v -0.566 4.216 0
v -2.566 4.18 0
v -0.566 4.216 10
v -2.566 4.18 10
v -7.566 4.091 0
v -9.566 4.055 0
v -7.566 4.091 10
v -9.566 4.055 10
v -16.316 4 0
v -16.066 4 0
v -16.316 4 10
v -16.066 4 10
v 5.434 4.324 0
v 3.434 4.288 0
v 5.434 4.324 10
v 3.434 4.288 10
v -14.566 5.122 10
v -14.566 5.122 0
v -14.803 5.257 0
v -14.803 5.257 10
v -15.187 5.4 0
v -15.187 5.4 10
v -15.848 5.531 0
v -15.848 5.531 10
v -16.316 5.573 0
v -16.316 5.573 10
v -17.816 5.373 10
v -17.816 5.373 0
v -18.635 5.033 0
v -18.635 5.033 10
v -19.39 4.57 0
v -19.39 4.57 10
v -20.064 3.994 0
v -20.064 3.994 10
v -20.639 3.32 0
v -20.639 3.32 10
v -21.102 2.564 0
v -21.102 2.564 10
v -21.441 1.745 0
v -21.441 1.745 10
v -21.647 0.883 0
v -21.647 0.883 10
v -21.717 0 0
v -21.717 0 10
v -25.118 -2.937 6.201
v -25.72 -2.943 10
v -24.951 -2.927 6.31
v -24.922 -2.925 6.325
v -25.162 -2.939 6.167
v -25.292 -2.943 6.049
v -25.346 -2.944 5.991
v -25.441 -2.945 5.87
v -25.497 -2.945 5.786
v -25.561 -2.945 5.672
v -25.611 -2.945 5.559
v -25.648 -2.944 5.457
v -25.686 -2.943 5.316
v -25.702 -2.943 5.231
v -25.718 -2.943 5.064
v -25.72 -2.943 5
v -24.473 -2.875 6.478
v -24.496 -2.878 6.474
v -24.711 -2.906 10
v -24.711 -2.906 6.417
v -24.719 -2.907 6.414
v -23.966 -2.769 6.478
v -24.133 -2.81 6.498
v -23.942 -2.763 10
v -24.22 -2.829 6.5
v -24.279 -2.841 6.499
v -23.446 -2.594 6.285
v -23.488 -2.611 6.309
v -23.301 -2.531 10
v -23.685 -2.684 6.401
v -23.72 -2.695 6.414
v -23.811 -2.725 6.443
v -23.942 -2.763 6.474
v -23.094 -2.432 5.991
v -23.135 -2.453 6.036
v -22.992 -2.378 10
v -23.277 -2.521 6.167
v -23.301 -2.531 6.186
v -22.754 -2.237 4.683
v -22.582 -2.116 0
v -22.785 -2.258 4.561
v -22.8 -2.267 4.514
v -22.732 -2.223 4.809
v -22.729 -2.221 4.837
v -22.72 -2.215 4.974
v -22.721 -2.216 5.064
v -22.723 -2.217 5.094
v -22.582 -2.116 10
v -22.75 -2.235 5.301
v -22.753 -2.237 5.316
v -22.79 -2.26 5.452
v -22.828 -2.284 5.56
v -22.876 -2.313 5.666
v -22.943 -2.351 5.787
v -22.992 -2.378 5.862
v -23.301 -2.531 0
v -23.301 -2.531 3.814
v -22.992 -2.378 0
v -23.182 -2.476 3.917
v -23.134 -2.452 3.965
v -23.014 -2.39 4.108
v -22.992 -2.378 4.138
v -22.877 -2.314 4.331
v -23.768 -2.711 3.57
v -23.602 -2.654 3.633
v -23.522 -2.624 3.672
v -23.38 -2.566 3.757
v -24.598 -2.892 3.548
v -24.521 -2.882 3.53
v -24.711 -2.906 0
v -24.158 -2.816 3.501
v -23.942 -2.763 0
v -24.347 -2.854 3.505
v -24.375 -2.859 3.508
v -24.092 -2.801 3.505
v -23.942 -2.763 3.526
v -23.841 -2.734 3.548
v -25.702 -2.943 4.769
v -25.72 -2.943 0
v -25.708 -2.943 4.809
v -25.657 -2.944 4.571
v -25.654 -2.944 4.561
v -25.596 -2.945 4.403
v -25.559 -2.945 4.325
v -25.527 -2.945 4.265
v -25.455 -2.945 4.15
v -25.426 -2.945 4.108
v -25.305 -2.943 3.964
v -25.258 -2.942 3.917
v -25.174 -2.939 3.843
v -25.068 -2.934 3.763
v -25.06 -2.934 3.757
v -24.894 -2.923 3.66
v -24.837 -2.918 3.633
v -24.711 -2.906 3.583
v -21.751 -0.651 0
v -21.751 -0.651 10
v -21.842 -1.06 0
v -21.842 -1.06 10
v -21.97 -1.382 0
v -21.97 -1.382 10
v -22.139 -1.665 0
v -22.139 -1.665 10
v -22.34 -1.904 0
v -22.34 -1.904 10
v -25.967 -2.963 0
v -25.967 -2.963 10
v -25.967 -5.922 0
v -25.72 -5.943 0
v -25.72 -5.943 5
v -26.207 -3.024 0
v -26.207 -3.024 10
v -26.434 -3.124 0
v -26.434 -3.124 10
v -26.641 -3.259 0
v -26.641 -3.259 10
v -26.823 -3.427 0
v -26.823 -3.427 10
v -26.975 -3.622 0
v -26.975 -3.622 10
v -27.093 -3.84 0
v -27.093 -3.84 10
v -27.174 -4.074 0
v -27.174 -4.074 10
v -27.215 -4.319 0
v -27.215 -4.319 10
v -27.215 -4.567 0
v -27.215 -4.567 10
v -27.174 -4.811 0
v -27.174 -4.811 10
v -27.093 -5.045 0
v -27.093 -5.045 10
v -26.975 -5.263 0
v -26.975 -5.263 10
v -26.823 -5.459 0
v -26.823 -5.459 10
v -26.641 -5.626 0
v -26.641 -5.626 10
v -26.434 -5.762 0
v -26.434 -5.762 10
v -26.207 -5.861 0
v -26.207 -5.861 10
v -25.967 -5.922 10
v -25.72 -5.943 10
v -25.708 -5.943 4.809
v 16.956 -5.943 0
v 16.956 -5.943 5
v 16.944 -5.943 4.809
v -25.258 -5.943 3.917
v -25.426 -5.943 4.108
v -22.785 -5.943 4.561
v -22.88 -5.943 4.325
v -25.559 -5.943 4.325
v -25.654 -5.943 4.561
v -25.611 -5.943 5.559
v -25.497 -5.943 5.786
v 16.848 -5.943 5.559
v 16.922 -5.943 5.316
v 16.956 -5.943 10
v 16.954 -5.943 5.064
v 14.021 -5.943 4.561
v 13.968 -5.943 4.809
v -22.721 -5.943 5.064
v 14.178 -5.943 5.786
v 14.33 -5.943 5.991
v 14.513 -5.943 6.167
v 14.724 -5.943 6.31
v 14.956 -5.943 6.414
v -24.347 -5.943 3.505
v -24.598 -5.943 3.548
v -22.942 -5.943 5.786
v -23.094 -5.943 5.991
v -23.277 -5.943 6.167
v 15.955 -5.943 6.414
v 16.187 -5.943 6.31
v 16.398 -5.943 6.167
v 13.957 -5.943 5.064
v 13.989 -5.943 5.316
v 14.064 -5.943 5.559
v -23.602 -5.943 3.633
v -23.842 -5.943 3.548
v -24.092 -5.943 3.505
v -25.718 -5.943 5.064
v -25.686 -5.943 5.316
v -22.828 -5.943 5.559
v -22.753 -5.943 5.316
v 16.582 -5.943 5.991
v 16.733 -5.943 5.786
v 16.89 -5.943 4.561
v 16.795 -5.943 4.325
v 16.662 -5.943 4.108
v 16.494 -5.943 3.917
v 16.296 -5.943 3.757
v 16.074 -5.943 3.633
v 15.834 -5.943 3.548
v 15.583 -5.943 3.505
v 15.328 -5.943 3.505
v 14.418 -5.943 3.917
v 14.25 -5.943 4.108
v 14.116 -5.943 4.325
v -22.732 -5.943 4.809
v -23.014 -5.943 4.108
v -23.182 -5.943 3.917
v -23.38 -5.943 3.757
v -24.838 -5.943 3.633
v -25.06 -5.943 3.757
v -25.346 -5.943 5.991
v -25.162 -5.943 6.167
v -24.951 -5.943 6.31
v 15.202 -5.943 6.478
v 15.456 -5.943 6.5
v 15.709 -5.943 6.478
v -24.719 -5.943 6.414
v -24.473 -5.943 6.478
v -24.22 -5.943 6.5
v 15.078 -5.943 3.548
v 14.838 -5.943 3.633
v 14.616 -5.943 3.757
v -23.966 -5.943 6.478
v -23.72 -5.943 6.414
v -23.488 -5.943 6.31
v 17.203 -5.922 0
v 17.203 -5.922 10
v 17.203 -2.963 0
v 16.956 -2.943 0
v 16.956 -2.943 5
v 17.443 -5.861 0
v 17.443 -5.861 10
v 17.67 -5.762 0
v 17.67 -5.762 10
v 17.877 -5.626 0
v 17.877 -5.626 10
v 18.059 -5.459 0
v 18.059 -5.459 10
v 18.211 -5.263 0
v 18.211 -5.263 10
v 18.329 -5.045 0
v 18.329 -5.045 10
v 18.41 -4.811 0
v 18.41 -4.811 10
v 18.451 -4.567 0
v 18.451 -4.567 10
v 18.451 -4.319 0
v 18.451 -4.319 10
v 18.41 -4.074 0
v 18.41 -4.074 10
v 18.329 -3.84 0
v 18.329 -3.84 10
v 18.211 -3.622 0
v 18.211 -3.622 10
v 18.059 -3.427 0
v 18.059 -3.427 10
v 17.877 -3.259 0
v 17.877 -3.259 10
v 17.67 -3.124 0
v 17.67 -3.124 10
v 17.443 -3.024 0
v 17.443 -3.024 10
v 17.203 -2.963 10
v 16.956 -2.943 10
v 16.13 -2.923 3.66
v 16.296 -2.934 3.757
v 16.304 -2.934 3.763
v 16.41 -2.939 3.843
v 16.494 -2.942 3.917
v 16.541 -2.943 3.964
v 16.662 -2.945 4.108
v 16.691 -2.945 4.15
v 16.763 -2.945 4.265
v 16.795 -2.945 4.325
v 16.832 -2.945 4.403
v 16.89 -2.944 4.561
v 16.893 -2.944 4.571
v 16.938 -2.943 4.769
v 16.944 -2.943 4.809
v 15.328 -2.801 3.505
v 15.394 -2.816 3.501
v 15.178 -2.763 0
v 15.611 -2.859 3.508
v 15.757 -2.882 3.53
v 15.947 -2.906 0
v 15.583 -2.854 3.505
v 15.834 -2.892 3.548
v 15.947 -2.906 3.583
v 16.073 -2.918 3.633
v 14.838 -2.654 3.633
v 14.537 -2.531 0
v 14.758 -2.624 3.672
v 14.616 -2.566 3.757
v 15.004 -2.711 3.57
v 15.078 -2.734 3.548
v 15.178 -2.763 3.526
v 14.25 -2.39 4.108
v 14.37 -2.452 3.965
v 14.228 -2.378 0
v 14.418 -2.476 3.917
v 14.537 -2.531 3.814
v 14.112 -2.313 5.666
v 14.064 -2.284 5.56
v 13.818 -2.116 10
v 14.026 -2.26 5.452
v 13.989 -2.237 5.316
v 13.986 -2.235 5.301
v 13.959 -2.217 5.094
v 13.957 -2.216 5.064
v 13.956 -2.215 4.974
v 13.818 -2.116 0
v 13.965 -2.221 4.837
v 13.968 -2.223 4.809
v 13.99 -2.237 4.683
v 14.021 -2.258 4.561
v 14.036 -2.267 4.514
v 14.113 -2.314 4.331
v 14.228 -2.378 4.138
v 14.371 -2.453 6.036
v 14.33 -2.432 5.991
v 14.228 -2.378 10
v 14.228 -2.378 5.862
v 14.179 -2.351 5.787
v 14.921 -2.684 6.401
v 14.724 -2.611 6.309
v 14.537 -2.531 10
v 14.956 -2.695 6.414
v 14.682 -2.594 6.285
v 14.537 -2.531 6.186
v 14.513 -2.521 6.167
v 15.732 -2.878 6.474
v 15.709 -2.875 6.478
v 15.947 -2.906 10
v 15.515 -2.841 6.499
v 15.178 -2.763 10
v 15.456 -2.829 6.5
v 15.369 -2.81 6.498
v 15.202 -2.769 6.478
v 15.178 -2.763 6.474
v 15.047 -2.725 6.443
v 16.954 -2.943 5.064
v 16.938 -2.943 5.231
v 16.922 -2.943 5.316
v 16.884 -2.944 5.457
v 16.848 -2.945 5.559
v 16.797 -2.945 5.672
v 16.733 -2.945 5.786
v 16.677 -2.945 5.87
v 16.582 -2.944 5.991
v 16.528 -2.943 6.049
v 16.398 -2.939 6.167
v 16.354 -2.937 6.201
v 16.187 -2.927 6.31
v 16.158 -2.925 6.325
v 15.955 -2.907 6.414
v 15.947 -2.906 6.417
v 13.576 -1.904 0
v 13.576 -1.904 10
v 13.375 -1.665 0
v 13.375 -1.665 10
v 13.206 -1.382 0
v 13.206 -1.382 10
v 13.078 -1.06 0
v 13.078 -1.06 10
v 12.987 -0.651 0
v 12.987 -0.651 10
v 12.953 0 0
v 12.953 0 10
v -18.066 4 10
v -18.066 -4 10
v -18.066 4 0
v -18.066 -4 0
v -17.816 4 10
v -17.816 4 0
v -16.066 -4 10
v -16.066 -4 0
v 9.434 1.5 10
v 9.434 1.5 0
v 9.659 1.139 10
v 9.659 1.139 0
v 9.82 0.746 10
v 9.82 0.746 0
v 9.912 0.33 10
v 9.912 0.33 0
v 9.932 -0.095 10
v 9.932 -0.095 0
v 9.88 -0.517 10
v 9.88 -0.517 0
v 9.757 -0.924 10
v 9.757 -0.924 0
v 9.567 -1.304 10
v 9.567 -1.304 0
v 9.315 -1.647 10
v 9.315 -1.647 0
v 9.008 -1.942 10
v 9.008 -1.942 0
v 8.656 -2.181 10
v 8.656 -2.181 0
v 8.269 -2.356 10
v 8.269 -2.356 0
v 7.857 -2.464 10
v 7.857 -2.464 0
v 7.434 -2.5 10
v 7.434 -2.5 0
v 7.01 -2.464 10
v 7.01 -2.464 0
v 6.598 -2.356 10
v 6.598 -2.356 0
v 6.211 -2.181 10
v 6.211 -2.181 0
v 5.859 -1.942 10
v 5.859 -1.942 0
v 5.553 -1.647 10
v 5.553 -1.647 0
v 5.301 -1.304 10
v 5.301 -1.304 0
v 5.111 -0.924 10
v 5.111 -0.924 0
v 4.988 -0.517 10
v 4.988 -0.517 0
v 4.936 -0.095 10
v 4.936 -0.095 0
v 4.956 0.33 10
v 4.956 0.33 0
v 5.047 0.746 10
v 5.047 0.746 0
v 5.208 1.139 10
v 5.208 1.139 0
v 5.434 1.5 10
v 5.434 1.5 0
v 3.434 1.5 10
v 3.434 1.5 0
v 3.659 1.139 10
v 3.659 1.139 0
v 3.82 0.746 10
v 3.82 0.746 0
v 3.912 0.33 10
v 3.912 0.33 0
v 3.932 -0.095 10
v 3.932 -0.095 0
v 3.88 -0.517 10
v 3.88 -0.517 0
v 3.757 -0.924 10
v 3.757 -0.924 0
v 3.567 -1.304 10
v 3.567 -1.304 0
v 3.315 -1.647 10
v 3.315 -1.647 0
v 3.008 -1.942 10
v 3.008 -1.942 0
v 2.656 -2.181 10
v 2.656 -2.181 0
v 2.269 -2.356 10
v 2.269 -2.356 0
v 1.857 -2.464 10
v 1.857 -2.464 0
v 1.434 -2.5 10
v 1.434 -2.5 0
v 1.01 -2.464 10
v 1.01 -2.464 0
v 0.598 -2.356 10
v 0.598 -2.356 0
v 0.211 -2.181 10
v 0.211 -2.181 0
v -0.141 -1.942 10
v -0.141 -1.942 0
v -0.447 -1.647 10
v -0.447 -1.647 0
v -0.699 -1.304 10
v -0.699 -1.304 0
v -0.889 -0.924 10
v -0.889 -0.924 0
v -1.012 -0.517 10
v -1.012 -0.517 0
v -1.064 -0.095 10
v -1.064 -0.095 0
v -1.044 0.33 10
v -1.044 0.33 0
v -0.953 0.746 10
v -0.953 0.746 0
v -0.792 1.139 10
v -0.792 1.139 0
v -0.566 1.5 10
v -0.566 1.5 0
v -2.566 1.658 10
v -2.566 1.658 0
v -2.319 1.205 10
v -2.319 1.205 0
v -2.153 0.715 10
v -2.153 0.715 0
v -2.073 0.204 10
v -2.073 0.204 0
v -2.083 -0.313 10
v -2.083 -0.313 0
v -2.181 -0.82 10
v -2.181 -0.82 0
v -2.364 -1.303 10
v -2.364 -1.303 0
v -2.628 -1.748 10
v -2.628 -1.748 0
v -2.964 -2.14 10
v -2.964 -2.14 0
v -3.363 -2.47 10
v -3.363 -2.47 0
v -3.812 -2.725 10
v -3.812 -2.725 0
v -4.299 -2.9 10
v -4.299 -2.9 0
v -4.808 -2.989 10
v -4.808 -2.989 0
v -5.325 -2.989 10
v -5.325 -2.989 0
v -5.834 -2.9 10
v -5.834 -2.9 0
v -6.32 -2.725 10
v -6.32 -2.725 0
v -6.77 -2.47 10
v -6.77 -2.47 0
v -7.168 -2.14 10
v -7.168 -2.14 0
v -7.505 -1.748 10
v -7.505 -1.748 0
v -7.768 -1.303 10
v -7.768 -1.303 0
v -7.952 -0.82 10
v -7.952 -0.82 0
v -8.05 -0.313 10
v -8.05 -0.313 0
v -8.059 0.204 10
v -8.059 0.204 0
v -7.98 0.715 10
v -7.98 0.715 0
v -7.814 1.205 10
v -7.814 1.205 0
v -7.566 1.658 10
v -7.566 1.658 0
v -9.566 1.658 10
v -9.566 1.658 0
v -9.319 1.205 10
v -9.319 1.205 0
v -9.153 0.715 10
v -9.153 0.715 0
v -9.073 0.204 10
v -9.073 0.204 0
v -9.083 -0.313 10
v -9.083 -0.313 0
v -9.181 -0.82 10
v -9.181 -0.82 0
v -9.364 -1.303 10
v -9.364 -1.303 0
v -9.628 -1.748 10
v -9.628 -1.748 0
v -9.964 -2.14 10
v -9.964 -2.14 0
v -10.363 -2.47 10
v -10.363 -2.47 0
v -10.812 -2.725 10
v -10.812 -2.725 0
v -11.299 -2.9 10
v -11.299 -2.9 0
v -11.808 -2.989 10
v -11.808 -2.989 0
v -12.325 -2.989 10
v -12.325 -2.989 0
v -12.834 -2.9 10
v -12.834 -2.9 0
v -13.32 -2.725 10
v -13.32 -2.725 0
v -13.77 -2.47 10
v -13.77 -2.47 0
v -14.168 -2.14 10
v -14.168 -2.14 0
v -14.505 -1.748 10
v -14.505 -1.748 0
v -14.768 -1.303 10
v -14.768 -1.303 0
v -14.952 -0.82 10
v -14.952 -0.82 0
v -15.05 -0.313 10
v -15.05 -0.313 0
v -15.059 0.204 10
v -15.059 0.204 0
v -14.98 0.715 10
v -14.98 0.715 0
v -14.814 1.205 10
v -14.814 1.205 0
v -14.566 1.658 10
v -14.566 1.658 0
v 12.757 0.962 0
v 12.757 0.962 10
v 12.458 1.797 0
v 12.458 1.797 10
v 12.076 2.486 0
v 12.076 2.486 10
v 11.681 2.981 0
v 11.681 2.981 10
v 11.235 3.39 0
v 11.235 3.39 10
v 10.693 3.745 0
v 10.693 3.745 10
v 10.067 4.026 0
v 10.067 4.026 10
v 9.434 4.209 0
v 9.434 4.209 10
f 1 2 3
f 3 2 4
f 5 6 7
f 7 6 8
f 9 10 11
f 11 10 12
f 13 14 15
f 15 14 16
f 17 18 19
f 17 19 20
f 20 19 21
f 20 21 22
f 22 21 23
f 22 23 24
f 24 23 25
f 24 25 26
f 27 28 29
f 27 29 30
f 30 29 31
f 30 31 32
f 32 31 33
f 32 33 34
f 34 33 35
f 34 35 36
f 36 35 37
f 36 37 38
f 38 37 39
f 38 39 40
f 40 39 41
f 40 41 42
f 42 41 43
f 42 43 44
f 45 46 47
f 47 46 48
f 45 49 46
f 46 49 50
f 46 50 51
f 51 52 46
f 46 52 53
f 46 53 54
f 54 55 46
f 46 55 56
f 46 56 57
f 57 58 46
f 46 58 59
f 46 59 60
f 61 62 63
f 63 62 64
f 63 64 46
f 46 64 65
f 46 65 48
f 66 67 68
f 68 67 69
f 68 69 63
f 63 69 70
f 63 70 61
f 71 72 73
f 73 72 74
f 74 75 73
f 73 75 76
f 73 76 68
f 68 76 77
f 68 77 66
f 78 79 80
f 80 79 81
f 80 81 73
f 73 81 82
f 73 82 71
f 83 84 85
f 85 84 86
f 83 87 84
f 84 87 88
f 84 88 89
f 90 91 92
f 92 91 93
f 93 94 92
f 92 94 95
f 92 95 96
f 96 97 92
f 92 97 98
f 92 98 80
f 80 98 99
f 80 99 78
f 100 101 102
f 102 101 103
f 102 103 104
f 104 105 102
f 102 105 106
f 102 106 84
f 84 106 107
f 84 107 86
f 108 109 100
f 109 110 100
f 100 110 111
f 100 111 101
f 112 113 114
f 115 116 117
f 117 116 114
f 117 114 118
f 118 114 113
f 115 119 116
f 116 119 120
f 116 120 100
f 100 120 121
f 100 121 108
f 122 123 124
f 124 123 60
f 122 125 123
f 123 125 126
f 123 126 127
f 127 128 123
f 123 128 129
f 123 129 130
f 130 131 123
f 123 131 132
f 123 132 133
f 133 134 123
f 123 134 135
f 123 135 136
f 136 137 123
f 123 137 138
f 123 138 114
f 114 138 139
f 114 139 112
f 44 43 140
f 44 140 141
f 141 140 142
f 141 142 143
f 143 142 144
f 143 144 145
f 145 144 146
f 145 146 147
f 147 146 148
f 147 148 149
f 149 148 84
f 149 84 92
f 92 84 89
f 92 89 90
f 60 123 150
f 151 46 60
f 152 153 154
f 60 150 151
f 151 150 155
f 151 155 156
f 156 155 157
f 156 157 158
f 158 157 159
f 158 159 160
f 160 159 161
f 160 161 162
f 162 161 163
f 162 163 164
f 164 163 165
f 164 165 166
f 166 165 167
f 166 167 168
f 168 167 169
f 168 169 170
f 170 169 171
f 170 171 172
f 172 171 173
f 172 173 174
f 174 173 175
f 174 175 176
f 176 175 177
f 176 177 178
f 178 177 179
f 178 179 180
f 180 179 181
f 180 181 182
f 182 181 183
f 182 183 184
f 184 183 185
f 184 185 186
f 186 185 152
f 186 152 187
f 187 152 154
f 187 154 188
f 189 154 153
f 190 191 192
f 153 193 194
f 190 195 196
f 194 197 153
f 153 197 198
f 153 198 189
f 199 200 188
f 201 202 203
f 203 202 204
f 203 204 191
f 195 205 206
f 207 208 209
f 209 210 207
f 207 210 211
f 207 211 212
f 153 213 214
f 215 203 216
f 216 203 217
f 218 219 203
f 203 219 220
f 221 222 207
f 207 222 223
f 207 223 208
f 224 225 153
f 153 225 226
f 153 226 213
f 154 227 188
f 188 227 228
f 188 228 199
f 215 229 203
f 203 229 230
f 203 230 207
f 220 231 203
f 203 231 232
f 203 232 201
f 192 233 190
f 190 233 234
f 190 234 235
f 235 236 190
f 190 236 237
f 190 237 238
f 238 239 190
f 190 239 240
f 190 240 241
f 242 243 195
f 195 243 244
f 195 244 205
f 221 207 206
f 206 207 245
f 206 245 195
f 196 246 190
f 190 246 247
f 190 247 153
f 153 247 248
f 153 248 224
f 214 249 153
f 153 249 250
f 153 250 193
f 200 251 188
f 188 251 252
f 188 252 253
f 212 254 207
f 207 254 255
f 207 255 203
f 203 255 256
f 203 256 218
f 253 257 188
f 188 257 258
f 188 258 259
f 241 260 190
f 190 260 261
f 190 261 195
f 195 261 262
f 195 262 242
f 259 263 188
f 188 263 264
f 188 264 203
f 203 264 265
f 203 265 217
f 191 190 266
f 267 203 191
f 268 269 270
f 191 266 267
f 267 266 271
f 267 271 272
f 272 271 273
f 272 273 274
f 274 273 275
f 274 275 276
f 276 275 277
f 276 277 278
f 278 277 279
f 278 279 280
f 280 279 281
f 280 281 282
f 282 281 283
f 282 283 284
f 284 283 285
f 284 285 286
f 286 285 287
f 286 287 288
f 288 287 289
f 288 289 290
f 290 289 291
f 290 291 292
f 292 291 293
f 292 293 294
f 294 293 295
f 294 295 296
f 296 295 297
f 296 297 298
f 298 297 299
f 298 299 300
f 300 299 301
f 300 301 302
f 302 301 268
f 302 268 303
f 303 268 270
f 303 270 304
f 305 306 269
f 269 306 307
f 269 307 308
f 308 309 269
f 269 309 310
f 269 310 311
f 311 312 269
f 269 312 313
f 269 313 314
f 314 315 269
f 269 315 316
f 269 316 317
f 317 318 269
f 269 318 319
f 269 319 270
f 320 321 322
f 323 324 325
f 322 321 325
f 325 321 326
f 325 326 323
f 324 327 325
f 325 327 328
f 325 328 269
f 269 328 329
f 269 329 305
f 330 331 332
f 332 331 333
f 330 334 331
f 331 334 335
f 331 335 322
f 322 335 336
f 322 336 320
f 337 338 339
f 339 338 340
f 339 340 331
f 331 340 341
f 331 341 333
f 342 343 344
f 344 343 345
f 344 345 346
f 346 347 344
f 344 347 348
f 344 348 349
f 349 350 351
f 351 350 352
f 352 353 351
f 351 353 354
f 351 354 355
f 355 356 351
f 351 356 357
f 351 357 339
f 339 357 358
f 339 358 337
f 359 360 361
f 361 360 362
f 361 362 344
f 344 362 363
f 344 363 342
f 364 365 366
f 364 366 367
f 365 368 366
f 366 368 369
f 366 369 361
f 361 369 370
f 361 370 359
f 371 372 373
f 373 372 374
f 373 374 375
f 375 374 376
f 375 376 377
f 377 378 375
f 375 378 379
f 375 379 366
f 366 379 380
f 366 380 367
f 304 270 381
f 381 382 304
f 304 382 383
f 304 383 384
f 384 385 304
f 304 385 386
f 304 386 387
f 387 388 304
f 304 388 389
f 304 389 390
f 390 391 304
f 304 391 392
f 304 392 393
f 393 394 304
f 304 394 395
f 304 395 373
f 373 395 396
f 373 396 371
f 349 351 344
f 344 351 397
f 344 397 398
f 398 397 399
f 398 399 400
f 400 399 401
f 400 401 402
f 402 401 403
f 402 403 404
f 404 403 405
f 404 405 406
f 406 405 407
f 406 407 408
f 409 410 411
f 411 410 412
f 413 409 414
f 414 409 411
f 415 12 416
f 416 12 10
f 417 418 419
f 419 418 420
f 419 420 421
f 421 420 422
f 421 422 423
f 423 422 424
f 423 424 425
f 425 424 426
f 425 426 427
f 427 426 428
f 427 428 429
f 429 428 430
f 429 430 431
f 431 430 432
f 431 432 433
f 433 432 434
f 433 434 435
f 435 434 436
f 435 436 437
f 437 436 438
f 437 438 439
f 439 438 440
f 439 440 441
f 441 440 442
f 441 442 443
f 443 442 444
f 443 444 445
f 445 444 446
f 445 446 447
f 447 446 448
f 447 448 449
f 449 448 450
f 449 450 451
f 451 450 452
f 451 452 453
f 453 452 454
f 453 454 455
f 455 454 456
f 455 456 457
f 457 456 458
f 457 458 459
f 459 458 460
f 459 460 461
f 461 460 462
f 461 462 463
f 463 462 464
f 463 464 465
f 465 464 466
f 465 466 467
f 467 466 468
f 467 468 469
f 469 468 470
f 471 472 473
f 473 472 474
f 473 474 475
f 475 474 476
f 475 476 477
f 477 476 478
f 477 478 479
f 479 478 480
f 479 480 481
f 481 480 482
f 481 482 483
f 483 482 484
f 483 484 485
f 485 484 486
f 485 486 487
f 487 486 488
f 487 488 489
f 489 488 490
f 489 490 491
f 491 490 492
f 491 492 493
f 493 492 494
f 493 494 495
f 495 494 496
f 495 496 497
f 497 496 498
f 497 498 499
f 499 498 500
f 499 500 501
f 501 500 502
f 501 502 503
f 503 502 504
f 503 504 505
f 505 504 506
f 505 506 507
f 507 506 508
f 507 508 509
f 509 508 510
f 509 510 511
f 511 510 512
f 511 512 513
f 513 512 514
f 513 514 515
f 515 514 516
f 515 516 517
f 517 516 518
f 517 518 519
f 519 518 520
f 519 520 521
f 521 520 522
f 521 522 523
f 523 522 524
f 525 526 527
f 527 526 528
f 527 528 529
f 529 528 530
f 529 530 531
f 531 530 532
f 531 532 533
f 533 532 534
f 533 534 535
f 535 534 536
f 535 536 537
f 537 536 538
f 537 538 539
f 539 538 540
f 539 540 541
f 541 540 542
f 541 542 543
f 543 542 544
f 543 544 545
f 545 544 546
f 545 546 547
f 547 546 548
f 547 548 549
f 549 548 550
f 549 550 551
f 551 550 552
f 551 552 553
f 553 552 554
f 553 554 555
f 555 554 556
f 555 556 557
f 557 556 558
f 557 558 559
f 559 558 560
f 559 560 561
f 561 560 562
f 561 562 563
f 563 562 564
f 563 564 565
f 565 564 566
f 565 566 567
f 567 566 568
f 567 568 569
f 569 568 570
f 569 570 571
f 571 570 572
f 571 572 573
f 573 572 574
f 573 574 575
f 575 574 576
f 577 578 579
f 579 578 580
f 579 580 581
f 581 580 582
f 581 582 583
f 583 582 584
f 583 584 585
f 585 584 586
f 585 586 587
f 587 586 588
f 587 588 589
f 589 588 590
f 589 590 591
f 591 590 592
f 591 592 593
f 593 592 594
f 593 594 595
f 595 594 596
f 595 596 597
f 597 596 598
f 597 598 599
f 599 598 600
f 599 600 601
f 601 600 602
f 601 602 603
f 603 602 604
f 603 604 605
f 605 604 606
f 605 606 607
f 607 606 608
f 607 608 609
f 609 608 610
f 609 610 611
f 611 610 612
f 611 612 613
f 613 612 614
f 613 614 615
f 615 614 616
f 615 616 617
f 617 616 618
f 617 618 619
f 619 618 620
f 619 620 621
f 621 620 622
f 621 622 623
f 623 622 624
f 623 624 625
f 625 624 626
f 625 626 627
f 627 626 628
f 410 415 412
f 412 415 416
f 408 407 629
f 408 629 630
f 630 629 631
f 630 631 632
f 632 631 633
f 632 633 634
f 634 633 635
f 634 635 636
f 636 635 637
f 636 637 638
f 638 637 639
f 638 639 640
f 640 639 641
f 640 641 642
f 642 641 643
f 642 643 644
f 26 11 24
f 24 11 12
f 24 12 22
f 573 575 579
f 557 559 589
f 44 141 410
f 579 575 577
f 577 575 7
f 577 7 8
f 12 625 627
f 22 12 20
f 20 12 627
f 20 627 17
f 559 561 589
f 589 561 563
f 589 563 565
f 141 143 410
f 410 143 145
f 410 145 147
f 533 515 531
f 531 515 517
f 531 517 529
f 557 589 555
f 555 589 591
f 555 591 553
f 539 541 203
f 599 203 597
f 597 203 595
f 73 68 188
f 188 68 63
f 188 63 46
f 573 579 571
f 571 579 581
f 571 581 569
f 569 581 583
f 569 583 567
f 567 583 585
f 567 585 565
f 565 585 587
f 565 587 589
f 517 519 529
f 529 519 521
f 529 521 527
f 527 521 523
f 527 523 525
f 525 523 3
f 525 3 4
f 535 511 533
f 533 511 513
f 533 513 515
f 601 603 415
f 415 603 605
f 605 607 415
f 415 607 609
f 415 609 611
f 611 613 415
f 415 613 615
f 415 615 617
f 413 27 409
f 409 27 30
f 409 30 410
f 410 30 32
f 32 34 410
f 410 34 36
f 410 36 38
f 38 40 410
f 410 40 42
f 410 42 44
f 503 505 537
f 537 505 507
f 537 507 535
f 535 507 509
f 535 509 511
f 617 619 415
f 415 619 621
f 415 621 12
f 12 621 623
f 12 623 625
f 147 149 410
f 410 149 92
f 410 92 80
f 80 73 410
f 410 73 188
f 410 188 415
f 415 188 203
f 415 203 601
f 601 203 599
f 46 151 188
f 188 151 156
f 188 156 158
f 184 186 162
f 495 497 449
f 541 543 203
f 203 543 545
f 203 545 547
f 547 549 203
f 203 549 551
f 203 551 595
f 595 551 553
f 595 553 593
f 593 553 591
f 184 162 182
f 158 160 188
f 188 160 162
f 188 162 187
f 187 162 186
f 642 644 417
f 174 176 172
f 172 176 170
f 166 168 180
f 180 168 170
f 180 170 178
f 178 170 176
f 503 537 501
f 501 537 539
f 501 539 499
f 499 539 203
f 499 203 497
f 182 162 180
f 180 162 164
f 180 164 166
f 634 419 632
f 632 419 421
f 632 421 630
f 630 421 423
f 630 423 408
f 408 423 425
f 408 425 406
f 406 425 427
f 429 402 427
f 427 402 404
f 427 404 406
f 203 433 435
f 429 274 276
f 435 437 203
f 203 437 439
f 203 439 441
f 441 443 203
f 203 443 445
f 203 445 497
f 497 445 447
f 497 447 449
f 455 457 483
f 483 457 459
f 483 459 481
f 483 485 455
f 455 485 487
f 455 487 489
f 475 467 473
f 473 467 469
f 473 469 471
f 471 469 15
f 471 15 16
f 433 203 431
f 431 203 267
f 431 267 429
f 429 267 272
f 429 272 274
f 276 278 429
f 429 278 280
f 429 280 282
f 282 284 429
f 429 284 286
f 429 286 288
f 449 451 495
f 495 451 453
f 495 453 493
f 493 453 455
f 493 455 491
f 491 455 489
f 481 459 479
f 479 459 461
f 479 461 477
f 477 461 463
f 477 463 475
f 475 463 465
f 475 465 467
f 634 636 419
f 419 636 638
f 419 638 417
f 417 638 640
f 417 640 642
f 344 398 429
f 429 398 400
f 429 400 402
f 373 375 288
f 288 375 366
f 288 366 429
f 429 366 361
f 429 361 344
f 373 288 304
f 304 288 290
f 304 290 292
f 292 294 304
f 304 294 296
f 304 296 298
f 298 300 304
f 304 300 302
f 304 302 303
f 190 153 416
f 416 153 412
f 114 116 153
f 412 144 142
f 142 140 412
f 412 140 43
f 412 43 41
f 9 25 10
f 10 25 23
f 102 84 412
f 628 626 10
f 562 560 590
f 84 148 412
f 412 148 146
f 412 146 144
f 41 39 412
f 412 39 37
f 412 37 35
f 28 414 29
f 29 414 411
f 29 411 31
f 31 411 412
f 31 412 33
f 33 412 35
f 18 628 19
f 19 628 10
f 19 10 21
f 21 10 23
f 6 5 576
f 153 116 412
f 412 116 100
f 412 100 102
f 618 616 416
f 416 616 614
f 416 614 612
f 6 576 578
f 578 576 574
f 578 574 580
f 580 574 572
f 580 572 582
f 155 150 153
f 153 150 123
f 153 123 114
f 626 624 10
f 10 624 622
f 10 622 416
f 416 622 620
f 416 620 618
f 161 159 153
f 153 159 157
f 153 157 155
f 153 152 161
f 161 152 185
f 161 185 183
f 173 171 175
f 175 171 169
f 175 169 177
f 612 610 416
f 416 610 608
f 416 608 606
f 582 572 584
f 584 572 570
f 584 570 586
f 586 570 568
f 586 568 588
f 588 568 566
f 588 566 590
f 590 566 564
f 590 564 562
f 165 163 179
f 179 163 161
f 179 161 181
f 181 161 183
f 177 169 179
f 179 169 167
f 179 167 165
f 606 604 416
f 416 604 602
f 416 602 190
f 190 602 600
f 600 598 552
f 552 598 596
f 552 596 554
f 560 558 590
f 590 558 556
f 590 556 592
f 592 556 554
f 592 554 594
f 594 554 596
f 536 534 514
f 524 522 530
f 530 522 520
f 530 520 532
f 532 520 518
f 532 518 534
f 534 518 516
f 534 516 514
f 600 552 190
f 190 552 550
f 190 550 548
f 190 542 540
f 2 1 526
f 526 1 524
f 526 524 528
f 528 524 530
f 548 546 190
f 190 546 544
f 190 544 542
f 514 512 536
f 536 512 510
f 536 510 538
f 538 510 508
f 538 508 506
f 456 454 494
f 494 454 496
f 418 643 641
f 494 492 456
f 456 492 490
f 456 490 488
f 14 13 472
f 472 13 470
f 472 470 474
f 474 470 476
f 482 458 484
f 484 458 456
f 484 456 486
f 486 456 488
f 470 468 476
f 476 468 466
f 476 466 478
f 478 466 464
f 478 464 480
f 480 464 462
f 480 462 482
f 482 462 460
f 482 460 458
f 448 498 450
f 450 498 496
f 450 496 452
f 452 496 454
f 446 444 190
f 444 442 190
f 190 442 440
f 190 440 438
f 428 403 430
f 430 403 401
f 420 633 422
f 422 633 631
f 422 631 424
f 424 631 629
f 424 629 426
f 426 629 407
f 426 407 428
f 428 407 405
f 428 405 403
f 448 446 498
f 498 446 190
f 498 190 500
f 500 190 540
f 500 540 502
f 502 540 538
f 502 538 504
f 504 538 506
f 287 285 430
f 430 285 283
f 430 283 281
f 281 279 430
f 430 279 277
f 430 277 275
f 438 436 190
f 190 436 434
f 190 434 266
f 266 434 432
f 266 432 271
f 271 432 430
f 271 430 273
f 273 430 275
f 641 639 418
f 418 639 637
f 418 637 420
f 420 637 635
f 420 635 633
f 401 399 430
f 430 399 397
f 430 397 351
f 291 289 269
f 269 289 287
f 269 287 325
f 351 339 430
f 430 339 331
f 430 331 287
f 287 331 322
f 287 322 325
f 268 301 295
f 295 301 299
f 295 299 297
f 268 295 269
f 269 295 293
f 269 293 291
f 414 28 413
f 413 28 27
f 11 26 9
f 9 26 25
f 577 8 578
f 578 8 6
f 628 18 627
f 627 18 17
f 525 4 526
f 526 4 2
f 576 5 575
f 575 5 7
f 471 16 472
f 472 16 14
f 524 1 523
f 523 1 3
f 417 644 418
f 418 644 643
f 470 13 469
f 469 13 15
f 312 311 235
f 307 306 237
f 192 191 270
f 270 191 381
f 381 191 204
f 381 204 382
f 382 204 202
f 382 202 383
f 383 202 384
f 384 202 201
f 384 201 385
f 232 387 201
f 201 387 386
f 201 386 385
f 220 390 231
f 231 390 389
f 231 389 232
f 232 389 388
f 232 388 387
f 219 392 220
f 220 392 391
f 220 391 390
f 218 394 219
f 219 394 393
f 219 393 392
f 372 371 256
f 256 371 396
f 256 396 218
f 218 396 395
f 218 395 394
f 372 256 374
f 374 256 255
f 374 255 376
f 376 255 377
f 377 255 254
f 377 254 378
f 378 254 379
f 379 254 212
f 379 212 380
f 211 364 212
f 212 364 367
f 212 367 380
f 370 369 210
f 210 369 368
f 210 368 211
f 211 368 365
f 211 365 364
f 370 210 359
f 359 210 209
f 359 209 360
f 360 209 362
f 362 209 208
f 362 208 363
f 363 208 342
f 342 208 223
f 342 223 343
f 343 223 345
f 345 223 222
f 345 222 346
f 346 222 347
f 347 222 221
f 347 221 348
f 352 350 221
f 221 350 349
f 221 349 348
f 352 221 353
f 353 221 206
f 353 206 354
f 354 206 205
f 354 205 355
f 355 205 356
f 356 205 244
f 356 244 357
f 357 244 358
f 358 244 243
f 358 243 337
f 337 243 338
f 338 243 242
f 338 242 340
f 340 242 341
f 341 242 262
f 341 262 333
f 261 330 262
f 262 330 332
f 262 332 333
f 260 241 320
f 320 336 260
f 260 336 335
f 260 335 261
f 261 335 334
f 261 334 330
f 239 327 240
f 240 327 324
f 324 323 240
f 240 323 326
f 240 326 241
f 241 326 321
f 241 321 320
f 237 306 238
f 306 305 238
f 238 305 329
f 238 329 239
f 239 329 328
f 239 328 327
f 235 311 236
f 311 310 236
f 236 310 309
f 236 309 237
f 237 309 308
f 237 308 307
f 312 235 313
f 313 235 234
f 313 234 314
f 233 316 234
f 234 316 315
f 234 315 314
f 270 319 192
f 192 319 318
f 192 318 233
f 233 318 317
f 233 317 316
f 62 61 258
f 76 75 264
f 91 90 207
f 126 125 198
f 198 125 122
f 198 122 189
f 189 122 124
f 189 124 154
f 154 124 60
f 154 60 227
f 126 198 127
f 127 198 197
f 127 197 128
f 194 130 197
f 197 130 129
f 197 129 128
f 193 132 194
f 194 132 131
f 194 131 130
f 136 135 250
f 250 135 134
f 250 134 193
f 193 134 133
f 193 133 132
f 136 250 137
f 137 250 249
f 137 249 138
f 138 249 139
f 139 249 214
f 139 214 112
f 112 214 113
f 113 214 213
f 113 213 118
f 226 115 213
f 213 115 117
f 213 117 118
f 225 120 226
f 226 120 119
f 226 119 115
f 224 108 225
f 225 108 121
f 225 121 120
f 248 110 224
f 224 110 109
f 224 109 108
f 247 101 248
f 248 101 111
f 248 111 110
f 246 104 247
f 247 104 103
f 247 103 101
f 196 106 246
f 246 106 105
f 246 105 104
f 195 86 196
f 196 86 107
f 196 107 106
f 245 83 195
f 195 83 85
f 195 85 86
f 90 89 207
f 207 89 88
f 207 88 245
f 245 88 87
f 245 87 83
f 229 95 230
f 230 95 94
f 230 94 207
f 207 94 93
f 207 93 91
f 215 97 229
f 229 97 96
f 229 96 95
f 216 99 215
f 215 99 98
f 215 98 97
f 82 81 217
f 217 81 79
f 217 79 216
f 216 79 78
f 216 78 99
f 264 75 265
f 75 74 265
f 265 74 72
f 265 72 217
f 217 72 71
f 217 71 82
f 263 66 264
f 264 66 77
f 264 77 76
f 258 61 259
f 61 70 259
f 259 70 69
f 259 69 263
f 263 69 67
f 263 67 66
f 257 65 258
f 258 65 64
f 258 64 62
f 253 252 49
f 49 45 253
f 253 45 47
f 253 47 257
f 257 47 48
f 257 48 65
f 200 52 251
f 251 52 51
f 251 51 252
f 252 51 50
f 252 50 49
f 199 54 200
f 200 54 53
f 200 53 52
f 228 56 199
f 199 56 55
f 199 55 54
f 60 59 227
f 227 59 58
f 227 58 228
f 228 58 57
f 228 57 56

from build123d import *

# Parameters (mm, degrees)
ESBO_O1_W                = 2
ESBO_O1_H                = 8
ESBO_O1_R                = 3
ESBO_O1_R_2              = 2.5
RESSALTO_EXTRUS_O1_DEPTH = 10
ESBO_O4_W                = 4
ESBO_O4_H                = 3.861250687
ESBO_O4_H_2              = 3.752003841
ESBO_O4_W_2              = 5
ESBO_O4_H_3              = 3.819014792
ESBO_O4_H_4              = 3.693699436
ESBO_O4_W_3              = 1.5
ESBO_O4_H_5              = 2.079089953
CORTE_EXTRUS_O1_DEPTH    = 10
ESBO_O5_R                = 1.5
CORTE_EXTRUS_O2_DEPTH    = 10


with BuildPart() as part:
    # Esboço1 → Ressalto-extrusão1 (new body)
    with BuildSketch(Plane.XY):
        with BuildLine():
            Line((-25.719653684, -5.942716093), (-16.131983613, -5.942716093))
            Line((-16.131983613, -5.942716093), (7.368016387, -5.942716093))
            Line((7.368016387, -5.942716093), (16.955686457, -5.942716093))
            ThreePointArc((16.955686457, -5.942716093), (18.455686457, -4.442716093), (16.955686457, -2.942716093))
            add(Edge.make_bspline(
                [(12.952874444, 0), (12.912537119, -1.482141434), (14.266501813, -2.619700333), (15.801098565, -2.968716739), (16.955686457, -2.942716093)],
                knots=[0, 0, 0, 0, 0.504814455, 1, 1, 1, 1], degree=3))
            add(Edge.make_bspline(
                [(12.952874444, 0), (12.309204111, 4.600095009), (7.368016387, 4.358240851)],
                knots=[0, 0, 0, 1, 1, 1], degree=2))
            Line((7.368016387, 4.358240851), (-12.64298655, 4))
            add(Edge.make_bspline(
                [(-12.64298655, 4), (-13.901476132, 4.065275886), (-14.043723736, 5.271225486), (-15.883550882, 5.59671809), (-16.925443363, 5.584858058)],
                knots=[0, 0, 0, 0, 0.56422845, 1, 1, 1, 1], degree=3))
            ThreePointArc((-16.925443363, 5.584858058), (-20.354846171, 3.679270895), (-21.716841671, 0))
            add(Edge.make_bspline(
                [(-21.716841671, 0), (-21.676504345, -1.482141434), (-23.030469039, -2.619700333), (-24.565065791, -2.968716739), (-25.719653684, -2.942716093)],
                knots=[0, 0, 0, 0, 0.504814455, 1, 1, 1, 1], degree=3))
            ThreePointArc((-25.719653684, -2.942716093), (-27.219653684, -4.442716093), (-25.719653684, -5.942716093))
        make_face()
        with Locations((-17.066284799, 0)):
            Rectangle(ESBO_O1_W, ESBO_O1_H, mode=Mode.SUBTRACT)
        with Locations((-12.066284799, 0)):
            Circle(ESBO_O1_R, mode=Mode.SUBTRACT)
        with Locations((-5.066284799, 0)):
            Circle(ESBO_O1_R, mode=Mode.SUBTRACT)
        with Locations((1.433715201, 0)):
            Circle(ESBO_O1_R_2, mode=Mode.SUBTRACT)
        with Locations((7.433715201, 0)):
            Circle(ESBO_O1_R_2, mode=Mode.SUBTRACT)
    extrude(amount=RESSALTO_EXTRUS_O1_DEPTH)

    # Esboço4 → Corte-extrusão1 (cut)
    with BuildSketch(Plane(origin=(0, 0, 0), x_dir=(-1, 0, 0), z_dir=(0, 0, -1))):
        with Locations((-7.433715201, 3.430625344)):
            Rectangle(ESBO_O4_W, ESBO_O4_H)
        with Locations((-1.433715201, 3.376001921)):
            Rectangle(ESBO_O4_W, ESBO_O4_H_2)
        with Locations((5.066284799, 3.567819791)):
            Rectangle(ESBO_O4_W_2, ESBO_O4_H_3)
        with Locations((12.066284799, 3.505162113)):
            Rectangle(ESBO_O4_W_2, ESBO_O4_H_4)
        with Locations((17.066284799, 4.780683053)):
            Rectangle(ESBO_O4_W_3, ESBO_O4_H_5)
    extrude(amount=-CORTE_EXTRUS_O1_DEPTH, mode=Mode.SUBTRACT)

    # Esboço5 → Corte-extrusão2 (cut)
    with BuildSketch(Plane(origin=(0, 0, 0), x_dir=(1, 0, 0), z_dir=(0, 1, 0))):
        with Locations(Location((-24.219653684, -5, 0), (0, 0, 180))):
            Circle(ESBO_O5_R)
        with Locations((15.455686457, -5)):
            Circle(ESBO_O5_R)
    extrude(amount=-CORTE_EXTRUS_O2_DEPTH, mode=Mode.SUBTRACT)


solid = part.part
